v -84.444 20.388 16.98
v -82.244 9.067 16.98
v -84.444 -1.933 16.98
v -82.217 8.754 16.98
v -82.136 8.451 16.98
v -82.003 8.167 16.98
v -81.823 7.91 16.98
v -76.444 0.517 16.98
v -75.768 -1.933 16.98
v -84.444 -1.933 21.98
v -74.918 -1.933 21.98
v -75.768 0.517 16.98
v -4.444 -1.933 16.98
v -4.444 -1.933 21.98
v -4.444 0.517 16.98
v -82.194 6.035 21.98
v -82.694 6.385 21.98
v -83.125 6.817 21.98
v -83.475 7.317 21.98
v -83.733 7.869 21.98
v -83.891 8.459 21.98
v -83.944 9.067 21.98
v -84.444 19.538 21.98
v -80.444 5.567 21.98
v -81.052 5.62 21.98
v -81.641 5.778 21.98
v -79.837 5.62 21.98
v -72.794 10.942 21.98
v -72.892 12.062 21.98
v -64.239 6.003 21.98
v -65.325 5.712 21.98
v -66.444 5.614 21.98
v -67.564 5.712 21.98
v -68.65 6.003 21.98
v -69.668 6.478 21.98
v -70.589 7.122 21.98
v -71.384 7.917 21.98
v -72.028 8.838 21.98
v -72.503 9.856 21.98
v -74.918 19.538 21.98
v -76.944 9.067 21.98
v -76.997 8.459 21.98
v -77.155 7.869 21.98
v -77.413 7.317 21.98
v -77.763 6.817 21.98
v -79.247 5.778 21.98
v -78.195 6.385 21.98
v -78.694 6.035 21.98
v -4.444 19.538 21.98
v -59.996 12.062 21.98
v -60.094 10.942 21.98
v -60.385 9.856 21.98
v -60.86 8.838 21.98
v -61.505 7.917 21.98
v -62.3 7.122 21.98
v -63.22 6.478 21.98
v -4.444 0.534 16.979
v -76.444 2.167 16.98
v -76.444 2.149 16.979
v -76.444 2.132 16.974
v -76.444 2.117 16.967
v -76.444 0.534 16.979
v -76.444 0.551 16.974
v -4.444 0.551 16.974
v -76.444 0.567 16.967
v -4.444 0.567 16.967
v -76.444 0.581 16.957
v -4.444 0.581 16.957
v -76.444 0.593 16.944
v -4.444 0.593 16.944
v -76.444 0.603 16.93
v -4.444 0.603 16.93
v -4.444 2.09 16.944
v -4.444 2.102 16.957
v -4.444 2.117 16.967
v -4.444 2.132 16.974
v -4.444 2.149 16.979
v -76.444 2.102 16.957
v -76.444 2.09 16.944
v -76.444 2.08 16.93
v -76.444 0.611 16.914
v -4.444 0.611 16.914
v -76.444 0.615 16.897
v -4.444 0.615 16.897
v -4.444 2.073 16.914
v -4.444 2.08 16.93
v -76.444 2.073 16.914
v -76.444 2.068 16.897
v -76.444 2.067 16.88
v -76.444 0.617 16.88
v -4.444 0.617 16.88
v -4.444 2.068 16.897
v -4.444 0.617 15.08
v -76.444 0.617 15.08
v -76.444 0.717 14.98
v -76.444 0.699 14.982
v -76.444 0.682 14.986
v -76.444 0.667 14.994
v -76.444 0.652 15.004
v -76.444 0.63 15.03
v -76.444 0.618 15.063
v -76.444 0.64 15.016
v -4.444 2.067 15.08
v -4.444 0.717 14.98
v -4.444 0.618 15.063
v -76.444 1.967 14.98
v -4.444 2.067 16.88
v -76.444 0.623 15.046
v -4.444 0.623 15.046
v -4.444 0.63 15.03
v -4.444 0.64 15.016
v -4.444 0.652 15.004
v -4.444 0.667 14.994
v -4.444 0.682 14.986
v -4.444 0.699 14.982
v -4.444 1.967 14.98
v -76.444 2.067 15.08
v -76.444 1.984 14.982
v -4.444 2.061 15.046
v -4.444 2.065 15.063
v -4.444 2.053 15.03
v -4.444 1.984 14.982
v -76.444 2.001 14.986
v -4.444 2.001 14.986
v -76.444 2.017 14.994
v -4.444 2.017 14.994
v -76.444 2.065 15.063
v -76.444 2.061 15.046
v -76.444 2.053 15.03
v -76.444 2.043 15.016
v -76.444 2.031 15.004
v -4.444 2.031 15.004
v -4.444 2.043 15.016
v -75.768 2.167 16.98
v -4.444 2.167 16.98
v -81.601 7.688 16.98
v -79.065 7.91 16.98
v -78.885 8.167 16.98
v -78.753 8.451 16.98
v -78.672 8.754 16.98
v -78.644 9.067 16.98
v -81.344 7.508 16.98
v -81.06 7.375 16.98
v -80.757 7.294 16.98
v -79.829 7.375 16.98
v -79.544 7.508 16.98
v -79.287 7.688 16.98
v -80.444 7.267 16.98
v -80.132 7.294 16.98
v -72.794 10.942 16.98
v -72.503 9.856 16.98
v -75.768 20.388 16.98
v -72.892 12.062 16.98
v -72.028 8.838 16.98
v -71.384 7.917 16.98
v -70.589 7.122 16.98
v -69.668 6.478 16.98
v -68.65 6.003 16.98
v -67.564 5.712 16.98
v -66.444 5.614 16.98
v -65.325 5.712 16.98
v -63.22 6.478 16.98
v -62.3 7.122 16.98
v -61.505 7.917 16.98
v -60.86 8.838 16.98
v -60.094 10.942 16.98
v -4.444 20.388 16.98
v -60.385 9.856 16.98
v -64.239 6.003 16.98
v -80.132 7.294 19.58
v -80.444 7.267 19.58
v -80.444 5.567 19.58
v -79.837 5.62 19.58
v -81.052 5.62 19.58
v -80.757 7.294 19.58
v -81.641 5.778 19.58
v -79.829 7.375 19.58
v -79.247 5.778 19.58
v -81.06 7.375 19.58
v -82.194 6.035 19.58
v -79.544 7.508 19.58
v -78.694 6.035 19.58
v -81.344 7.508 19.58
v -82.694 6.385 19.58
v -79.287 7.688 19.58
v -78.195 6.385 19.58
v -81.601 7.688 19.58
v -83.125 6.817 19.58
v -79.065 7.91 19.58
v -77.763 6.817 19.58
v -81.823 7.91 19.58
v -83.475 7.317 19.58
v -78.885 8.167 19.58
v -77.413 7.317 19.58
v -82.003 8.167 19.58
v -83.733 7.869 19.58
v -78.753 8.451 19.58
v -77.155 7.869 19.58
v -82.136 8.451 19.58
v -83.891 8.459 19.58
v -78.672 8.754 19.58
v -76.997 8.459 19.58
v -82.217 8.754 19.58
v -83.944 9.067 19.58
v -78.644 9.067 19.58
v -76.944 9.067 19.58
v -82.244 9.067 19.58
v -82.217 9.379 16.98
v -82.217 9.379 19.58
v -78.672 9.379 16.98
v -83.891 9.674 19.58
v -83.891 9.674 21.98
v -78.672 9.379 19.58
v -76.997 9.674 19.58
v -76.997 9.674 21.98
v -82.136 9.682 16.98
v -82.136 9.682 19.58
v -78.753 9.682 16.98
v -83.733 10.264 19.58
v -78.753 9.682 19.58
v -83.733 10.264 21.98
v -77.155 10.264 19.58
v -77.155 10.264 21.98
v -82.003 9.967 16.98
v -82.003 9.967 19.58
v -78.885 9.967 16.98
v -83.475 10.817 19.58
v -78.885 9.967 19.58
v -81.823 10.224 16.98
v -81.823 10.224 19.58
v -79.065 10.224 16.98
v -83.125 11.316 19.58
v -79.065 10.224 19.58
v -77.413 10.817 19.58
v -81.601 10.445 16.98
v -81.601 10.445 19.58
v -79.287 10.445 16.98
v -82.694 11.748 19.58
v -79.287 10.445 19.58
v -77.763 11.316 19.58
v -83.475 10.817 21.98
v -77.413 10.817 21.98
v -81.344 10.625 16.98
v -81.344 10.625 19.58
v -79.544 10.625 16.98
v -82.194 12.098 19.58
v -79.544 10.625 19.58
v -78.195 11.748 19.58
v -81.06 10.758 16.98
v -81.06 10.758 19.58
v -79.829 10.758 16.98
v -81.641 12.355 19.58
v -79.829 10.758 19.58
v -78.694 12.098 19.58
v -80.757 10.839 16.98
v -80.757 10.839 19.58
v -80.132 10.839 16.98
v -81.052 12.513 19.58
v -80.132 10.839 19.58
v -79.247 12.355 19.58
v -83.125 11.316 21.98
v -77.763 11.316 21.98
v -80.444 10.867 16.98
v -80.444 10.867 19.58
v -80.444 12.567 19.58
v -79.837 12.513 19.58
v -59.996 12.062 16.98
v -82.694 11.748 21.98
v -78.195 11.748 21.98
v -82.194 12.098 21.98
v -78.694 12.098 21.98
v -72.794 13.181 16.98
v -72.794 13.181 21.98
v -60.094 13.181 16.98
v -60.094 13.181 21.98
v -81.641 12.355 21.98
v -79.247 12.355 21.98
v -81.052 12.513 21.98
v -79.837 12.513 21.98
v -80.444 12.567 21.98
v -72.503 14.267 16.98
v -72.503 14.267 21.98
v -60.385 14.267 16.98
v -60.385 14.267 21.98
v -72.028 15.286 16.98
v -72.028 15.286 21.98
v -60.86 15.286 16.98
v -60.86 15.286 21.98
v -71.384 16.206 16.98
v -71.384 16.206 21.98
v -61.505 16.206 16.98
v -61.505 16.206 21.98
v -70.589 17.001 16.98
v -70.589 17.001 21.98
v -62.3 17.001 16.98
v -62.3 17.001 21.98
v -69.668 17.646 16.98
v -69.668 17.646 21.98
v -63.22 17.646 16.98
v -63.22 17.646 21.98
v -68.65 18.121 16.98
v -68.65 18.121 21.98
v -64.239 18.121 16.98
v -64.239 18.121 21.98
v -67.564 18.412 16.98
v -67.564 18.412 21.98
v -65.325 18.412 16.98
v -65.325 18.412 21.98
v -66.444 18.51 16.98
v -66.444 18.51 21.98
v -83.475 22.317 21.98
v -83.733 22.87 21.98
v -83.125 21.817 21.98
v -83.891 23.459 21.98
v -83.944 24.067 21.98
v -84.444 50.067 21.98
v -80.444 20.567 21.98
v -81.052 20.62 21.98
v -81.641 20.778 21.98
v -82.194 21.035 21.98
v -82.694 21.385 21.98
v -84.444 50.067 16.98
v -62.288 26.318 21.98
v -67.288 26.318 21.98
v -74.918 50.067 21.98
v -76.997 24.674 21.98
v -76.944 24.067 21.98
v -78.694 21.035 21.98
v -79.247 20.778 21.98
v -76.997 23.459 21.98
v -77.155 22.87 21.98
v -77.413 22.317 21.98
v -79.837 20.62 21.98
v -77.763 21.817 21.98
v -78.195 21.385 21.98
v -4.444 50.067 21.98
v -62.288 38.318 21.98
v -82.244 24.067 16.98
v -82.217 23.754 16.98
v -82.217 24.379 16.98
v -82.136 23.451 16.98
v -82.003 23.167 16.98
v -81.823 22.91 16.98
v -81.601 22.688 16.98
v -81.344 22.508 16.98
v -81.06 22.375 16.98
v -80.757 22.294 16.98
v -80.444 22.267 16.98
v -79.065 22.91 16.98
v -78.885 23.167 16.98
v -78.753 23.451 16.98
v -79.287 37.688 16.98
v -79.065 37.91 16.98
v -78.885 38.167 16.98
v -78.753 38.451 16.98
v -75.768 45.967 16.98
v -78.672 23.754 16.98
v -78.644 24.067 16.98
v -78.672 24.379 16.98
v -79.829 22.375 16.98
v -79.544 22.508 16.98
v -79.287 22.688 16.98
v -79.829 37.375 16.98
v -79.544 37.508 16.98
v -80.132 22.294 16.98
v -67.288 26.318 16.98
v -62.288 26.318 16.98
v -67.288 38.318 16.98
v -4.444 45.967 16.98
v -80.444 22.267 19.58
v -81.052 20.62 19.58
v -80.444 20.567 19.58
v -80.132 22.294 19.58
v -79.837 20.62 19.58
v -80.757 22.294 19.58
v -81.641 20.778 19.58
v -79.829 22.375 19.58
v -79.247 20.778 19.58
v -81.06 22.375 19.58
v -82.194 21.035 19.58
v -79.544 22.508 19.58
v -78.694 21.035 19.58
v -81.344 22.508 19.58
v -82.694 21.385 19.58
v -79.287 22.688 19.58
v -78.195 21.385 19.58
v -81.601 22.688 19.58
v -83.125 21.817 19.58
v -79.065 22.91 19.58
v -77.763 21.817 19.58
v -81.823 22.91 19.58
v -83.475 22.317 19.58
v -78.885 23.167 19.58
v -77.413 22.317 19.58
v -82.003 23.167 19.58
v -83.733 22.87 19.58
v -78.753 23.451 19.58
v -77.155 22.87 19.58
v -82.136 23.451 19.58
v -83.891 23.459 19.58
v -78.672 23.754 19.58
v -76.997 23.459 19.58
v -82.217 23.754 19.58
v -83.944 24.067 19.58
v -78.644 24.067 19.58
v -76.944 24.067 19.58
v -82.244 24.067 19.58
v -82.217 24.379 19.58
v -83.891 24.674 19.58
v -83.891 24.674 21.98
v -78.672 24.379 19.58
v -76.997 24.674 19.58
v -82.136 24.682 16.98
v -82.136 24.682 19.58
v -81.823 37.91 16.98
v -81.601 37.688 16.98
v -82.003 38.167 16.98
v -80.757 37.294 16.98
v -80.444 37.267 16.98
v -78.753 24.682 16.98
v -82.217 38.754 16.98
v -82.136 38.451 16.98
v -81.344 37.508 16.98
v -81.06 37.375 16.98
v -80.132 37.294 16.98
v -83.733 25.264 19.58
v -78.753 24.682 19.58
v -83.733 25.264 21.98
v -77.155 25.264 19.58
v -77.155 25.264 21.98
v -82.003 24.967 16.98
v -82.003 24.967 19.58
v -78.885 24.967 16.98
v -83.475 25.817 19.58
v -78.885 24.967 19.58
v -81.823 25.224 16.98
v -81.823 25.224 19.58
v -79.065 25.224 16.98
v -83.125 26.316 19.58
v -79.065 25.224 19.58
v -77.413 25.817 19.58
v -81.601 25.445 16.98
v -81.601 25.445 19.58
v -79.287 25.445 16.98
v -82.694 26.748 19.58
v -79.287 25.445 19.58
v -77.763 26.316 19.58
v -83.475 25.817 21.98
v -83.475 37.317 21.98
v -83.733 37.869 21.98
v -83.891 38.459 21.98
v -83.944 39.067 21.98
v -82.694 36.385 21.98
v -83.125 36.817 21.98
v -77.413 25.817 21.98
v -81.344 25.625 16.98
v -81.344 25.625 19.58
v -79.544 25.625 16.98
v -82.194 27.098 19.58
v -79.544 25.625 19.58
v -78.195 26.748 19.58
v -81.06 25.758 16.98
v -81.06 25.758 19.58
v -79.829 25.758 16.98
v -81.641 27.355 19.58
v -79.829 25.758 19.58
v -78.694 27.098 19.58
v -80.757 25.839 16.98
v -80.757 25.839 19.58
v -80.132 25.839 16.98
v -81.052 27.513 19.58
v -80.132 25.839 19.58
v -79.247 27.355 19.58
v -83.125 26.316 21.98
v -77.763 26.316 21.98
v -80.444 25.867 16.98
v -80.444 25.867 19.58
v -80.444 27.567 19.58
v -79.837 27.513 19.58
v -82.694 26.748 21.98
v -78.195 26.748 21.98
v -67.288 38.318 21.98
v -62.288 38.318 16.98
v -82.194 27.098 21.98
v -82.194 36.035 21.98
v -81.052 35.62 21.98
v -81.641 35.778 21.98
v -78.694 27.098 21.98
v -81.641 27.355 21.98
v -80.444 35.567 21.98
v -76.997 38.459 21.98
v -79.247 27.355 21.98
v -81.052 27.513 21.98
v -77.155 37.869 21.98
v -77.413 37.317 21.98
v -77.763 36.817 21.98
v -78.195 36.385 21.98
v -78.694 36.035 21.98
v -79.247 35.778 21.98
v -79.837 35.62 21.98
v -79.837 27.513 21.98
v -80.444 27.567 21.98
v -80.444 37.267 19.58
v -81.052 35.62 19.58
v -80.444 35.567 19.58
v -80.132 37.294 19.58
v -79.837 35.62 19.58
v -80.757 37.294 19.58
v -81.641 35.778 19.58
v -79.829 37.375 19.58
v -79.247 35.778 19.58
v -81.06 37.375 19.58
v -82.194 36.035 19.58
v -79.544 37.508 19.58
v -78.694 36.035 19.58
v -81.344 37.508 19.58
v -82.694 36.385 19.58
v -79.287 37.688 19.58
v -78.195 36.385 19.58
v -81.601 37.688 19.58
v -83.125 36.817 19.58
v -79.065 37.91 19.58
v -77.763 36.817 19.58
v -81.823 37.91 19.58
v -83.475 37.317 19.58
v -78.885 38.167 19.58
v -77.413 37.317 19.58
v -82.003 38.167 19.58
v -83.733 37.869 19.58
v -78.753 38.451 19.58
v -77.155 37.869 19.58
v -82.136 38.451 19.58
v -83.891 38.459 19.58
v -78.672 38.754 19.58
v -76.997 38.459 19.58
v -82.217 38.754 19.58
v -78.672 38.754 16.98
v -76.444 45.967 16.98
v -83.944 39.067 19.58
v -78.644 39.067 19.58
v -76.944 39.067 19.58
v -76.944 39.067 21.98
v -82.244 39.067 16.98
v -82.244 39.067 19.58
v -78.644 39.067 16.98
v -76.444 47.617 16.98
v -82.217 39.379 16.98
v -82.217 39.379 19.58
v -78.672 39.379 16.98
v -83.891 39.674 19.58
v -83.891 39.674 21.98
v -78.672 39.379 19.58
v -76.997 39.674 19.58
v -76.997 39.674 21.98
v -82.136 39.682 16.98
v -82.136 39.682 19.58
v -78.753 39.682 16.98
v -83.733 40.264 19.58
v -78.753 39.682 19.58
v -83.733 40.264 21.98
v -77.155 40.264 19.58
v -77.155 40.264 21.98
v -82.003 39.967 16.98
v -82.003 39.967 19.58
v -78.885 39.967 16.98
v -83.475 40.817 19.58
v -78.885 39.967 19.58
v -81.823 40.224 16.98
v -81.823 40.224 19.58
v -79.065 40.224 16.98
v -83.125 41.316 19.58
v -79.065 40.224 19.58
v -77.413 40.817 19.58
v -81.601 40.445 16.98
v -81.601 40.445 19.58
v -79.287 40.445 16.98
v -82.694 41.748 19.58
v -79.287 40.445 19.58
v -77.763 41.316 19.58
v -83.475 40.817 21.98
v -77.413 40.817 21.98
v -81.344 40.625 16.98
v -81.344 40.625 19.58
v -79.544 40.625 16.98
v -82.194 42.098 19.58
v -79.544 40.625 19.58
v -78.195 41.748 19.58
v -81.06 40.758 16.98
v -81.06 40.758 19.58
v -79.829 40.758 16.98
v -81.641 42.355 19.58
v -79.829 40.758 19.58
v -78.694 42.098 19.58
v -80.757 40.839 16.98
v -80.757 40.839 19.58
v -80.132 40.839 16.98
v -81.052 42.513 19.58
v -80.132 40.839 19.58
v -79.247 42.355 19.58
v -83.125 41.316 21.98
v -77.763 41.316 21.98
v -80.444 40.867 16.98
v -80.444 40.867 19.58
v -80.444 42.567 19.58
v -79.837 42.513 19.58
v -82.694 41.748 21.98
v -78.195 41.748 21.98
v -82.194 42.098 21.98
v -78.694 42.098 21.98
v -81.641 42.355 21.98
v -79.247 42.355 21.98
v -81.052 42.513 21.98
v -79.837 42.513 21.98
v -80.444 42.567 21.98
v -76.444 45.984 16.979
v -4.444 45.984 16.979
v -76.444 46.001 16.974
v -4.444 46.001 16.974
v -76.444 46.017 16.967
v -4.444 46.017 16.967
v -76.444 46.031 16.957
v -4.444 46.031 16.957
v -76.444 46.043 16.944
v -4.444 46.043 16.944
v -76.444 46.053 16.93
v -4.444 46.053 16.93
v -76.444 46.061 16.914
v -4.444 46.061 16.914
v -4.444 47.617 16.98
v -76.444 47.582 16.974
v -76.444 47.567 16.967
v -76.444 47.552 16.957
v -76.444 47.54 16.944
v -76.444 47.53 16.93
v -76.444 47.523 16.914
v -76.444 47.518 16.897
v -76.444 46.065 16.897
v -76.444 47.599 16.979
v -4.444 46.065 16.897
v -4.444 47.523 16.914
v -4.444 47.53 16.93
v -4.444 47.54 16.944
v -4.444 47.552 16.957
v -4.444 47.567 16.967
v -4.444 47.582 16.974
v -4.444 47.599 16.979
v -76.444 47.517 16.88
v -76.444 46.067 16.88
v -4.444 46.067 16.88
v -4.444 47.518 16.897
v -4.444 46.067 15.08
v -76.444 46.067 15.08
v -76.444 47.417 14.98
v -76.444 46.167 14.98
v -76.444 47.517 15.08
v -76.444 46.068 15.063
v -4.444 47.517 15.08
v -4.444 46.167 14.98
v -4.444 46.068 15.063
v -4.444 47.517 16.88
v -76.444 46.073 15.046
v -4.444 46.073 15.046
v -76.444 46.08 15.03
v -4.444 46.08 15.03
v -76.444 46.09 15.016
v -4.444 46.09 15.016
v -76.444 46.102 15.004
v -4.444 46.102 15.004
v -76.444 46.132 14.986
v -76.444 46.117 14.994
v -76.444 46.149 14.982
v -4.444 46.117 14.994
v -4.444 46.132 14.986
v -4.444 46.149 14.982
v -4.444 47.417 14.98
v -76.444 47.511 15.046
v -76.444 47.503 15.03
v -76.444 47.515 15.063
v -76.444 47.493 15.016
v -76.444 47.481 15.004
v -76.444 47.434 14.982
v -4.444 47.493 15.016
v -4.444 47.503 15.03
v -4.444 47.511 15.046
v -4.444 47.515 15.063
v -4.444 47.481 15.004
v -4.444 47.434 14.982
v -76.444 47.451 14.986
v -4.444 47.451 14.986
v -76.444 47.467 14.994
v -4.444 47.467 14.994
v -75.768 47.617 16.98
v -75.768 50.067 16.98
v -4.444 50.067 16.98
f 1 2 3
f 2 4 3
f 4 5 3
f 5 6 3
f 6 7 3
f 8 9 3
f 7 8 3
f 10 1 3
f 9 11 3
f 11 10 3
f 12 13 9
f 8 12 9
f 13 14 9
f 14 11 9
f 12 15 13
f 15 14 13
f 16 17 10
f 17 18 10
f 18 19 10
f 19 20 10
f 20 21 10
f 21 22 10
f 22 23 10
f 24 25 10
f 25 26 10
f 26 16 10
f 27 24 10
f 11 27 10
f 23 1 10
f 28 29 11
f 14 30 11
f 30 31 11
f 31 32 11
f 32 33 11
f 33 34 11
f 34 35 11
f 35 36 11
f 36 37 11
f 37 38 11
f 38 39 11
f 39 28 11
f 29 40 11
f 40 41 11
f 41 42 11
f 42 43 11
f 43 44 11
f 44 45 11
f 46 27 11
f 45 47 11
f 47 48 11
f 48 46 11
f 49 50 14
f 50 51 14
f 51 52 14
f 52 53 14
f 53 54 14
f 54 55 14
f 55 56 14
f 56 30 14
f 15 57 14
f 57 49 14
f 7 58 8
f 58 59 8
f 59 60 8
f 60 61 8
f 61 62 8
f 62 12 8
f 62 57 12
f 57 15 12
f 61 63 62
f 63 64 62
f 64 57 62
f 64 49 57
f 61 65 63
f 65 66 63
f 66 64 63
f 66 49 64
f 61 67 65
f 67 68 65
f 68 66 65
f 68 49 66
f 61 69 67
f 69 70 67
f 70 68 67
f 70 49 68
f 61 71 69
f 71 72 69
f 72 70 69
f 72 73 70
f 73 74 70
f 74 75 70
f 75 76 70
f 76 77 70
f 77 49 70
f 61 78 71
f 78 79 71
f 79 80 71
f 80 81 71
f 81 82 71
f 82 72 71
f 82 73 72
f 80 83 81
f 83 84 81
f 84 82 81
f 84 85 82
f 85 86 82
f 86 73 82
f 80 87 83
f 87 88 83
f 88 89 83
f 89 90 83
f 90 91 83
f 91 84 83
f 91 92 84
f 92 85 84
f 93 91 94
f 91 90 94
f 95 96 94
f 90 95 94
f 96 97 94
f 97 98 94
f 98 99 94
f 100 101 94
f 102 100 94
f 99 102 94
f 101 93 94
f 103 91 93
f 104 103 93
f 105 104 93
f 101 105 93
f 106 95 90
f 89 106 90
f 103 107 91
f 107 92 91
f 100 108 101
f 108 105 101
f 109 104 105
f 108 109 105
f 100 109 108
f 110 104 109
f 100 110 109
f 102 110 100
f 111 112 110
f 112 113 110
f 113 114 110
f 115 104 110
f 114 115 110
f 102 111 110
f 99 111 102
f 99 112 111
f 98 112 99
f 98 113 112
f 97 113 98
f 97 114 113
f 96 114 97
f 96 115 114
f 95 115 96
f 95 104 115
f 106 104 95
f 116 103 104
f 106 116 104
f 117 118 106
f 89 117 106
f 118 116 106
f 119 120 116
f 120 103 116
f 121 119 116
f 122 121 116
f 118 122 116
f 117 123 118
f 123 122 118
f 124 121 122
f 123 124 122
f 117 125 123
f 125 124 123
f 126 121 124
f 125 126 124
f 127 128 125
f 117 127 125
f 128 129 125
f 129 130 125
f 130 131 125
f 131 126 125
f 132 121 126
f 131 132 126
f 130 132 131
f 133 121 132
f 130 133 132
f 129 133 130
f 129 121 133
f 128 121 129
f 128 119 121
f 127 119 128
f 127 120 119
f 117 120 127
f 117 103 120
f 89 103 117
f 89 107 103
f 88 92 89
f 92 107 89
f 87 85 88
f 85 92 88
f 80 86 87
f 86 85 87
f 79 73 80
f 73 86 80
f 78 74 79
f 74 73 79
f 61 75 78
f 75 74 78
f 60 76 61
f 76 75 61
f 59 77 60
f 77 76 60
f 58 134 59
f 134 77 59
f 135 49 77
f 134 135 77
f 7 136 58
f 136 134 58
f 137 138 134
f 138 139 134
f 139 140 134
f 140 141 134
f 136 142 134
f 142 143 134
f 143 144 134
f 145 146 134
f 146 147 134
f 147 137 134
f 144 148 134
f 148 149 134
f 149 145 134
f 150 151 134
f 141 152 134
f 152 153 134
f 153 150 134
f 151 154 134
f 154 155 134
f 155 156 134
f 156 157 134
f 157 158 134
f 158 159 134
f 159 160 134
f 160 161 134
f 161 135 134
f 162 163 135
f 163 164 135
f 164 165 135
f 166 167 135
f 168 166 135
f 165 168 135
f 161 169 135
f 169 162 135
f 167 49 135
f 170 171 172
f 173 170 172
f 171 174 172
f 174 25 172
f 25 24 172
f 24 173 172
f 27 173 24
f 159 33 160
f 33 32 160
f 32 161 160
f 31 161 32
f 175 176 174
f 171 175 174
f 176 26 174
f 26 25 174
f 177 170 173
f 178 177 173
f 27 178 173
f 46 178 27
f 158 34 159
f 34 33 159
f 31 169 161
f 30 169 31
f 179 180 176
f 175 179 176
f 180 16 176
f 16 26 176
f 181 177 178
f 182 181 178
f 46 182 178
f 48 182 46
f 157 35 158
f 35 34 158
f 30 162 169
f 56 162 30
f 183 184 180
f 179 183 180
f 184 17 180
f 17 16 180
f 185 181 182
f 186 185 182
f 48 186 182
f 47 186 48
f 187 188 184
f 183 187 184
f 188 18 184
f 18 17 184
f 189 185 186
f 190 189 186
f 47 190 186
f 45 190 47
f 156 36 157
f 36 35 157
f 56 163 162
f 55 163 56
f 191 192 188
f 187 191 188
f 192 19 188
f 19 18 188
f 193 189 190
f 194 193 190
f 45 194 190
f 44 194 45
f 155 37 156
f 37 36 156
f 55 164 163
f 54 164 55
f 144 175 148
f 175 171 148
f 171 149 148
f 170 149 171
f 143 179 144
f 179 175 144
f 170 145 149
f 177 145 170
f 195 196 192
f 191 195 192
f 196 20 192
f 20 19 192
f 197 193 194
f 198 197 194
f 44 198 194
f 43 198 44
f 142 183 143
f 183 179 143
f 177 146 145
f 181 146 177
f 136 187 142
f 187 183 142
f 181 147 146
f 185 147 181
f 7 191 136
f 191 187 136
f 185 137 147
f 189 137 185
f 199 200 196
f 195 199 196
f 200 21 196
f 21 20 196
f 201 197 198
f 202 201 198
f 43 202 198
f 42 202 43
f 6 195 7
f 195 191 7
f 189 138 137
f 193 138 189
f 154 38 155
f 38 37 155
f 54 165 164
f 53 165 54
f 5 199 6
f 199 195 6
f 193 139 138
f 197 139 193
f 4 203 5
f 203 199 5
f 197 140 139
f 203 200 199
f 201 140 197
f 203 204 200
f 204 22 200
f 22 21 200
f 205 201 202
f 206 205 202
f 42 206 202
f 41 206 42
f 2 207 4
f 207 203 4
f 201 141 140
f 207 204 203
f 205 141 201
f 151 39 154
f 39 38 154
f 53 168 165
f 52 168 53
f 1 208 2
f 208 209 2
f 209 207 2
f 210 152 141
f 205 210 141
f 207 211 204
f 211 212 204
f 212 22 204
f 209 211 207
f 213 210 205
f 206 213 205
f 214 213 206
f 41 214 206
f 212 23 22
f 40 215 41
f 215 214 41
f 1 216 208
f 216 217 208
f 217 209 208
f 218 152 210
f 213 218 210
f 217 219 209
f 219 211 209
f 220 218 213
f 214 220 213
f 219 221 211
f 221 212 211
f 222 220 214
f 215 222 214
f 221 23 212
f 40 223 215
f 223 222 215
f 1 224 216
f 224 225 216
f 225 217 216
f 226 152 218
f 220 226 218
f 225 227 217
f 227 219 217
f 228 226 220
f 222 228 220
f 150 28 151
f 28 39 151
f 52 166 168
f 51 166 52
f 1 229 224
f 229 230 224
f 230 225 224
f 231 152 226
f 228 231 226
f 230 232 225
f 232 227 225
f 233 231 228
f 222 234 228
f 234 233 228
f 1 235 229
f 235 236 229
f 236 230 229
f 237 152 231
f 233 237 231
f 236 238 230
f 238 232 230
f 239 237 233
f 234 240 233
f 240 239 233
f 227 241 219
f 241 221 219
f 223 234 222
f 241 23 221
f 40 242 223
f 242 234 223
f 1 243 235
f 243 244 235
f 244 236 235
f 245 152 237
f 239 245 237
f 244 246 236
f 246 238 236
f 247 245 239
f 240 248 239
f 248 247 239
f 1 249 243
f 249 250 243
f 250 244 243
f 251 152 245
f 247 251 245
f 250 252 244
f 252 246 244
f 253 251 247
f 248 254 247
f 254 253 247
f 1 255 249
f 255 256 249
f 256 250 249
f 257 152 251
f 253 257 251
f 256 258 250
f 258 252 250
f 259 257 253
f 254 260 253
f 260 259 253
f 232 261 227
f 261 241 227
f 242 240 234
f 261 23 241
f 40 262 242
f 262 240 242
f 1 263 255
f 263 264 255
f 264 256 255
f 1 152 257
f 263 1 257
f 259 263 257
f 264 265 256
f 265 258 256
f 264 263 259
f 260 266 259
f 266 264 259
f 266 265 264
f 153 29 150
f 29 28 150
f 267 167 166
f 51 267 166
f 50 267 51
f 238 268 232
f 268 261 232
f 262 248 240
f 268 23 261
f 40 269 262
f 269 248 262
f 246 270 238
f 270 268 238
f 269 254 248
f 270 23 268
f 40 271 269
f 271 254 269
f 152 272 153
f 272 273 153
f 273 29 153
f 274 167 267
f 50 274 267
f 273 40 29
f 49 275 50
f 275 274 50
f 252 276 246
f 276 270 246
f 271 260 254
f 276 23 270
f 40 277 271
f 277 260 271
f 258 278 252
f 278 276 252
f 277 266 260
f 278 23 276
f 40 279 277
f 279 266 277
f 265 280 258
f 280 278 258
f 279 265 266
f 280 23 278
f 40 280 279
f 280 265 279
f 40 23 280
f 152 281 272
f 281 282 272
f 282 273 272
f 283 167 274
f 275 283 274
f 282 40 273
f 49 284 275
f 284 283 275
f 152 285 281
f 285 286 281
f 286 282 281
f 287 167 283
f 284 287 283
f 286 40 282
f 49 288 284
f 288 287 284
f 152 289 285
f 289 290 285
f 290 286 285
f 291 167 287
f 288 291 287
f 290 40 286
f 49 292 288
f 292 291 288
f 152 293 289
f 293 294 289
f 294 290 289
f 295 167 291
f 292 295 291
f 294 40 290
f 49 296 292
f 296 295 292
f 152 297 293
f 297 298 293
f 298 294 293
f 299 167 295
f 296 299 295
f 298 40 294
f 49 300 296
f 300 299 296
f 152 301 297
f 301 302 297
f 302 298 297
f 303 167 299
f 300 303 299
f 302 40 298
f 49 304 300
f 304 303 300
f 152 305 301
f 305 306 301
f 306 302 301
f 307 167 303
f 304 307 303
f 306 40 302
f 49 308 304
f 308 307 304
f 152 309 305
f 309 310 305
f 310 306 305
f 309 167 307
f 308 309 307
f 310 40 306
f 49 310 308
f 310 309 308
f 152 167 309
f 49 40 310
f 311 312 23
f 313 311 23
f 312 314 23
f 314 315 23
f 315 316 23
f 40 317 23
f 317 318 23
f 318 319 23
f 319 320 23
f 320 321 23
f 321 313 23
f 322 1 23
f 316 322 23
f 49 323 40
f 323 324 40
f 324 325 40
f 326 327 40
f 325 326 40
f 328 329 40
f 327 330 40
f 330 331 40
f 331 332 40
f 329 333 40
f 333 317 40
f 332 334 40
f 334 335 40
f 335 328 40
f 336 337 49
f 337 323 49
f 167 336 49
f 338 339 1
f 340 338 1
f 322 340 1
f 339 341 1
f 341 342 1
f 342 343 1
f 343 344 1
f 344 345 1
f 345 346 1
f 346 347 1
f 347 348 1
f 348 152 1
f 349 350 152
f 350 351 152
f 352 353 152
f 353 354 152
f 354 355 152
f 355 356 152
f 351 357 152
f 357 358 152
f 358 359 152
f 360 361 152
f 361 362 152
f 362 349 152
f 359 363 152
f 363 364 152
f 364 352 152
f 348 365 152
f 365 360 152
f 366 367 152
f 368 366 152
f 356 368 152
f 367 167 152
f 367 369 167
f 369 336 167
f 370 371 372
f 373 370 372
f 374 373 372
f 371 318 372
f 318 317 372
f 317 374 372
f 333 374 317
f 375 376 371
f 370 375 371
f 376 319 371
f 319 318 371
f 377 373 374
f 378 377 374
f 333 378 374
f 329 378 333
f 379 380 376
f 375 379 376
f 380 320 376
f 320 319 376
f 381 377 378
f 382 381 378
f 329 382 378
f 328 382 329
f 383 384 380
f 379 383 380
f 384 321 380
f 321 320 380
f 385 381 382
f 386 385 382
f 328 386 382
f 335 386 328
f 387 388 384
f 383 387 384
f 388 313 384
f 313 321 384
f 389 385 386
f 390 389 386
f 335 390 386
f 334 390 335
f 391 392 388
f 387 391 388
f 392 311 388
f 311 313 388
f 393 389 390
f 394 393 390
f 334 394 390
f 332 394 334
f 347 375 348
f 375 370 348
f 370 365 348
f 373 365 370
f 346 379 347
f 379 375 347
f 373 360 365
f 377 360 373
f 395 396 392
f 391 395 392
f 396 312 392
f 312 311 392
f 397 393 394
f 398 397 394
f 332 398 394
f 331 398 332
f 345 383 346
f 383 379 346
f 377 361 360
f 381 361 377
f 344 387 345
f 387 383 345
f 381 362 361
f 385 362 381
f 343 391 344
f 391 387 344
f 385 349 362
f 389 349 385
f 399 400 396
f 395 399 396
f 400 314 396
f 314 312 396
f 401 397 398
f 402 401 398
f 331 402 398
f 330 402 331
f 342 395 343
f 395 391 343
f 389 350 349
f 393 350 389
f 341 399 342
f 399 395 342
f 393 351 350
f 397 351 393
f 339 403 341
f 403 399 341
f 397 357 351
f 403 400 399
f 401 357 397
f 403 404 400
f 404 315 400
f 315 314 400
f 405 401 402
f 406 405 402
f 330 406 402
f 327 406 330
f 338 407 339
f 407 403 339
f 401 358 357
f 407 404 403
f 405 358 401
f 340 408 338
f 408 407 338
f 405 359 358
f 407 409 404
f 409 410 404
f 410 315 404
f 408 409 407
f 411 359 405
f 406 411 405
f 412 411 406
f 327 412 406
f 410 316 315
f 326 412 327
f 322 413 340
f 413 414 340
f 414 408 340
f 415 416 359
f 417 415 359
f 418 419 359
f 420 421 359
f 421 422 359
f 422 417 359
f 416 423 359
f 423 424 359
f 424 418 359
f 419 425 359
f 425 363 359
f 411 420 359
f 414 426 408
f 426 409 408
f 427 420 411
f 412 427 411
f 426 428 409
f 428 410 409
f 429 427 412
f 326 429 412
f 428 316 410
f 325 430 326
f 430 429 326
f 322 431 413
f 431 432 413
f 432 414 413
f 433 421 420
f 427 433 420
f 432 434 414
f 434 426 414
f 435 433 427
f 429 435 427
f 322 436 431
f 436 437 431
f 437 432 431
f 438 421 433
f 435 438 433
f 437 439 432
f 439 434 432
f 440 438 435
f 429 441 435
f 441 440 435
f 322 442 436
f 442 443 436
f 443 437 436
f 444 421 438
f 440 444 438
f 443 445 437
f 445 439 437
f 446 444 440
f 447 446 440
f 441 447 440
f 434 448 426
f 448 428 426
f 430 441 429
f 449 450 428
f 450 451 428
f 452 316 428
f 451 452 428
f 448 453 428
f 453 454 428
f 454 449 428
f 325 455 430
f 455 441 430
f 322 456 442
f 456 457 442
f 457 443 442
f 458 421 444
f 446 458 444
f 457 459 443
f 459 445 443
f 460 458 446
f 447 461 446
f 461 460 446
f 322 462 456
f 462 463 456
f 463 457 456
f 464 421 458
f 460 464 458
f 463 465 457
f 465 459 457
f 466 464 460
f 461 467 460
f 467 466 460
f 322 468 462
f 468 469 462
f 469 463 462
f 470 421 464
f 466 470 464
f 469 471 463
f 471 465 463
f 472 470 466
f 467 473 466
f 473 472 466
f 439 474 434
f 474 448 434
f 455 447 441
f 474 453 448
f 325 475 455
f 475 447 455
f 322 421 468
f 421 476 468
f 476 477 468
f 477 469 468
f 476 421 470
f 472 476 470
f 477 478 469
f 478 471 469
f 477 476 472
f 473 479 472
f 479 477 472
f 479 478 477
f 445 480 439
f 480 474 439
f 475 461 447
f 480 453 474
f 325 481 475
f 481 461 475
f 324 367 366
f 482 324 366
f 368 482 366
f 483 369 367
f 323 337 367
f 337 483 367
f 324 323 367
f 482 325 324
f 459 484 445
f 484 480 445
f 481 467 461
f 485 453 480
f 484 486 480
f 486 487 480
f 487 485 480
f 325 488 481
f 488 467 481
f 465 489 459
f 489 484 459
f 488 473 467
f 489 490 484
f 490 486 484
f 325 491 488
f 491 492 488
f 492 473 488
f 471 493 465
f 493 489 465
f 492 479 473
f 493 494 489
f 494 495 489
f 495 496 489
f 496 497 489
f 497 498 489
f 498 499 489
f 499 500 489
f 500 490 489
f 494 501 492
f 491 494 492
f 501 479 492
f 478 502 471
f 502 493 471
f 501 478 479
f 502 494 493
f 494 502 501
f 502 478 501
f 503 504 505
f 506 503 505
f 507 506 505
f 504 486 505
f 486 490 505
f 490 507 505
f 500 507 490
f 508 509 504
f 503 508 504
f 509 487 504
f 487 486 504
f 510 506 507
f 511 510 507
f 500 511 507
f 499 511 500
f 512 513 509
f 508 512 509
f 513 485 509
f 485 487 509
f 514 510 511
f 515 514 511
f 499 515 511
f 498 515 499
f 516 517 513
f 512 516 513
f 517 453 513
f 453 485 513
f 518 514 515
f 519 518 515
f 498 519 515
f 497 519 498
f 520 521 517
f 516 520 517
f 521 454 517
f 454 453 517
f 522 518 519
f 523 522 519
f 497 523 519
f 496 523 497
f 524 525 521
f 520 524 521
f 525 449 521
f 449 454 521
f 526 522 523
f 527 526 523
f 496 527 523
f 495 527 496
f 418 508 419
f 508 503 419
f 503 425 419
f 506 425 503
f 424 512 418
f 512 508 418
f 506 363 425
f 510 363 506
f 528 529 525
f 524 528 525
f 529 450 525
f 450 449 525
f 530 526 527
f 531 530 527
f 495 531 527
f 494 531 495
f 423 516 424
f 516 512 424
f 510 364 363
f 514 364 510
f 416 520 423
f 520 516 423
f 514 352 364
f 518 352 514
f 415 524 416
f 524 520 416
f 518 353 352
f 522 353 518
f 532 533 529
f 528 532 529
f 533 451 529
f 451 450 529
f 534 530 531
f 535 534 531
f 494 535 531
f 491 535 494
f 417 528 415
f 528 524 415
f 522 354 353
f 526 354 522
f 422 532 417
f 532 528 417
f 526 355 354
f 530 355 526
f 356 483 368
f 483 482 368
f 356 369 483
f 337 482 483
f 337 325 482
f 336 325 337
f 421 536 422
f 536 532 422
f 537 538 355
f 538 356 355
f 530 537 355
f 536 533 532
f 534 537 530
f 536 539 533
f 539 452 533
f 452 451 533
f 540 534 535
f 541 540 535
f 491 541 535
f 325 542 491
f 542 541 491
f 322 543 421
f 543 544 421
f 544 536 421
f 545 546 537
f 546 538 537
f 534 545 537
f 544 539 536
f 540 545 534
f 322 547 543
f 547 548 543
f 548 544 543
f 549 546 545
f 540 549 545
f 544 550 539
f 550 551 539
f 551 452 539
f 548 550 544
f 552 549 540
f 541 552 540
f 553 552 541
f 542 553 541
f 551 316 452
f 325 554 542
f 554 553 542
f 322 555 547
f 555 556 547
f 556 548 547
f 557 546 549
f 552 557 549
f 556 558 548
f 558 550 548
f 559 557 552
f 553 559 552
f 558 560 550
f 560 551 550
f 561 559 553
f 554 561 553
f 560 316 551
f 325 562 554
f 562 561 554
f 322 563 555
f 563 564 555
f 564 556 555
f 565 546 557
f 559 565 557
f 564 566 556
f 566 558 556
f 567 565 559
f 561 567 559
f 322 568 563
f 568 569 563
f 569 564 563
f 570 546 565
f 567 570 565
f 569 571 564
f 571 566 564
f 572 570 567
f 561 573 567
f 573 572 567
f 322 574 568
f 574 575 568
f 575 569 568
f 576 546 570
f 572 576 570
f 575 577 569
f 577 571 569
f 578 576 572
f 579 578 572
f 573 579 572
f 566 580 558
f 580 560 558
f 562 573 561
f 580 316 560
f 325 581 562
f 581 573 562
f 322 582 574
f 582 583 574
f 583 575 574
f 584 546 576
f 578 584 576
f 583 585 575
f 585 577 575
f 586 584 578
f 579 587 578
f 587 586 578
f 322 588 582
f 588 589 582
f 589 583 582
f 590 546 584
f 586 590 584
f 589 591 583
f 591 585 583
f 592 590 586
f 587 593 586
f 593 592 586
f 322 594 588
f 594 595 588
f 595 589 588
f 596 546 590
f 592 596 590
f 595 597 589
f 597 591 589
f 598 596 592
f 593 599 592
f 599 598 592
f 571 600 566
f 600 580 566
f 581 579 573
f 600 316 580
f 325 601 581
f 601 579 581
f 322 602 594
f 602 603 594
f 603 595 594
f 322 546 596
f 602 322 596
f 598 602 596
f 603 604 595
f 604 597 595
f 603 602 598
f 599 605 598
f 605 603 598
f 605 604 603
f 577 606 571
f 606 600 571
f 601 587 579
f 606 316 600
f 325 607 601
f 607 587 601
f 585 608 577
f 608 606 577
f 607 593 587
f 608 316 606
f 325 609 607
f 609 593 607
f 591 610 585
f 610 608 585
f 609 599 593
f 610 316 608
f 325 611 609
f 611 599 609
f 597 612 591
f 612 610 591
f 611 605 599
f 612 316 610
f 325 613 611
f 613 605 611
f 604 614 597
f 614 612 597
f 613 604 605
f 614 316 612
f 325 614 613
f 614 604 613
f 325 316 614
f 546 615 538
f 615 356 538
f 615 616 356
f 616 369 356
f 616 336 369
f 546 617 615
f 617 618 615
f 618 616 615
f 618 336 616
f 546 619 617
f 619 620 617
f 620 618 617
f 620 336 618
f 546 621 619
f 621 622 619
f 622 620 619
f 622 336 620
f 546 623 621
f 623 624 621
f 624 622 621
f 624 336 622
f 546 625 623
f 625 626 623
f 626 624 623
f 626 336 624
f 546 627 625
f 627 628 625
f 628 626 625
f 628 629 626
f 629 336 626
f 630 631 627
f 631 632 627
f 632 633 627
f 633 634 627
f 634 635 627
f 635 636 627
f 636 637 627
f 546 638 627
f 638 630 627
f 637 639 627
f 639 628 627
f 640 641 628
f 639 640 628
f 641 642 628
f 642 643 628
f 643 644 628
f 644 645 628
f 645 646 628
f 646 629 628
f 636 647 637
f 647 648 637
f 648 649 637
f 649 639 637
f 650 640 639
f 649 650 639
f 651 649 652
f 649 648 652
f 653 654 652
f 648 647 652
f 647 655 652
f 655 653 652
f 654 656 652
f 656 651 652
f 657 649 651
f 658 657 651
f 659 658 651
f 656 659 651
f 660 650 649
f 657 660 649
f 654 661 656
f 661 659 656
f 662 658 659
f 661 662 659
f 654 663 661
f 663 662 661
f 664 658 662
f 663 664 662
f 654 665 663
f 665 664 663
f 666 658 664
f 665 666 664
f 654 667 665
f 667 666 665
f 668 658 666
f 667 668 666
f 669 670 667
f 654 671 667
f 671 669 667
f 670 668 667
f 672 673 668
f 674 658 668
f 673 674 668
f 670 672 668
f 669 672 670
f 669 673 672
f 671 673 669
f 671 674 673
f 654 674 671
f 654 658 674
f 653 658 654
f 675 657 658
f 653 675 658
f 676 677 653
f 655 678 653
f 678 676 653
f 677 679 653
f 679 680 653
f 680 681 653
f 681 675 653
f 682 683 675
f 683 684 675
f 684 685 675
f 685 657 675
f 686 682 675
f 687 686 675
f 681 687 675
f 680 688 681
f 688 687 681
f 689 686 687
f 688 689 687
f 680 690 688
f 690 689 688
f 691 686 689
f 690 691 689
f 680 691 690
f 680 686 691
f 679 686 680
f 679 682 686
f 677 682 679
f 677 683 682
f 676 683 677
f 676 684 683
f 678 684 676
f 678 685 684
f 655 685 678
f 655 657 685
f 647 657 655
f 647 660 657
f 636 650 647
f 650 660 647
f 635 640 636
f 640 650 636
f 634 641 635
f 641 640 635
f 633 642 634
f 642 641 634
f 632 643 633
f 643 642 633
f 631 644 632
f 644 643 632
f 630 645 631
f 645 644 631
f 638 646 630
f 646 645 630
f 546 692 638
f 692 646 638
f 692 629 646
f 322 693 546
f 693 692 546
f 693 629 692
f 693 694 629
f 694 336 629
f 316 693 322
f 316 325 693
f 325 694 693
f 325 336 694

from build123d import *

# Parameters (mm, degrees)
ESQUISSE1_W                                        = 80
ESQUISSE1_H                                        = 52
BOSS_EXTRU_1_DEPTH                                 = 5
ESQUISSE2_R                                        = 6.447859464
ENL_V_MAT_EXTRU_1_DEPTH                            = 5
CHAMBRAGE_POUR_VIS_T_TE_RONDE_BOMB_E_M_D           = 3.6
CHAMBRAGE_POUR_VIS_T_TE_RONDE_BOMB_E_M_CBORE_D     = 7
CHAMBRAGE_POUR_VIS_T_TE_RONDE_BOMB_E_M_CBORE_DEPTH = 2.4
ESQUISSE5_W                                        = 72
ESQUISSE5_H                                        = 1.45
BOSS_EXTRU_2_DEPTH                                 = 2
CONG_1_R                                           = 0.1
ESQUISSE6_W                                        = 5
ESQUISSE6_H                                        = 12
ENL_V_MAT_EXTRU_2_DEPTH                            = 99.420026836


with BuildPart() as part:
    # Esquisse1 → Boss.-Extru.1 (new body)
    with BuildSketch(Plane.XY.offset(16.98011664)):
        with Locations((-44.444303066, 24.066569306)):
            Rectangle(ESQUISSE1_W, ESQUISSE1_H)
    extrude(amount=BOSS_EXTRU_1_DEPTH)

    # Esquisse2 → Enlèv. mat.-Extru.1 (cut)
    with BuildSketch(Plane.XY.offset(21.98011664)):
        with Locations((-66.444303066, 12.061734253)):
            Circle(ESQUISSE2_R)
    extrude(amount=-ENL_V_MAT_EXTRU_1_DEPTH, mode=Mode.SUBTRACT)

    # Chambrage pour vis à tête ronde bombée M34 (through all)
    with Locations(Plane.XY.offset(21.98011664)):
        with Locations((-80.444303066, 9.066569306), (-80.444303066, 24.066569306), (-80.444303066, 39.066569306)):
            CounterBoreHole(CHAMBRAGE_POUR_VIS_T_TE_RONDE_BOMB_E_M_D / 2, CHAMBRAGE_POUR_VIS_T_TE_RONDE_BOMB_E_M_CBORE_D / 2, CHAMBRAGE_POUR_VIS_T_TE_RONDE_BOMB_E_M_CBORE_DEPTH)

    # Esquisse5 → Boss.-Extru.2 (add)
    with BuildSketch(Plane(origin=(0, 0, 16.98011664), x_dir=(-1, 0, 0), z_dir=(0, 0, -1))):
        with Locations((40.444303066, 1.341569306)):
            Rectangle(ESQUISSE5_W, ESQUISSE5_H)
        with Locations((40.444303066, 46.791569306)):
            Rectangle(ESQUISSE5_W, ESQUISSE5_H)
    extrude(amount=BOSS_EXTRU_2_DEPTH)

    # Congé1
    cong_1_edges = [part.edges().sort_by_distance(p)[0] for p in [
        (-40.444303066, 0.616569306, 16.98011664),
        (-40.444303066, 2.066569306, 16.98011664),
        (-40.444303066, 0.616569306, 14.98011664),
        (-40.444303066, 2.066569306, 14.98011664),
        (-40.444303066, 46.066569306, 16.98011664),
        (-40.444303066, 47.516569306, 16.98011664),
        (-40.444303066, 46.066569306, 14.98011664),
        (-40.444303066, 47.516569306, 14.98011664),
    ]]
    fillet(cong_1_edges, radius=CONG_1_R)

    # Esquisse6 → Enlèv. mat.-Extru.2 (cut, through all)
    with BuildSketch(Plane.XY.offset(21.98011664)):
        with Locations((-64.788459284, 32.318430869)):
            Rectangle(ESQUISSE6_W, ESQUISSE6_H)
    extrude(amount=-ENL_V_MAT_EXTRU_2_DEPTH, mode=Mode.SUBTRACT)


solid = part.part
